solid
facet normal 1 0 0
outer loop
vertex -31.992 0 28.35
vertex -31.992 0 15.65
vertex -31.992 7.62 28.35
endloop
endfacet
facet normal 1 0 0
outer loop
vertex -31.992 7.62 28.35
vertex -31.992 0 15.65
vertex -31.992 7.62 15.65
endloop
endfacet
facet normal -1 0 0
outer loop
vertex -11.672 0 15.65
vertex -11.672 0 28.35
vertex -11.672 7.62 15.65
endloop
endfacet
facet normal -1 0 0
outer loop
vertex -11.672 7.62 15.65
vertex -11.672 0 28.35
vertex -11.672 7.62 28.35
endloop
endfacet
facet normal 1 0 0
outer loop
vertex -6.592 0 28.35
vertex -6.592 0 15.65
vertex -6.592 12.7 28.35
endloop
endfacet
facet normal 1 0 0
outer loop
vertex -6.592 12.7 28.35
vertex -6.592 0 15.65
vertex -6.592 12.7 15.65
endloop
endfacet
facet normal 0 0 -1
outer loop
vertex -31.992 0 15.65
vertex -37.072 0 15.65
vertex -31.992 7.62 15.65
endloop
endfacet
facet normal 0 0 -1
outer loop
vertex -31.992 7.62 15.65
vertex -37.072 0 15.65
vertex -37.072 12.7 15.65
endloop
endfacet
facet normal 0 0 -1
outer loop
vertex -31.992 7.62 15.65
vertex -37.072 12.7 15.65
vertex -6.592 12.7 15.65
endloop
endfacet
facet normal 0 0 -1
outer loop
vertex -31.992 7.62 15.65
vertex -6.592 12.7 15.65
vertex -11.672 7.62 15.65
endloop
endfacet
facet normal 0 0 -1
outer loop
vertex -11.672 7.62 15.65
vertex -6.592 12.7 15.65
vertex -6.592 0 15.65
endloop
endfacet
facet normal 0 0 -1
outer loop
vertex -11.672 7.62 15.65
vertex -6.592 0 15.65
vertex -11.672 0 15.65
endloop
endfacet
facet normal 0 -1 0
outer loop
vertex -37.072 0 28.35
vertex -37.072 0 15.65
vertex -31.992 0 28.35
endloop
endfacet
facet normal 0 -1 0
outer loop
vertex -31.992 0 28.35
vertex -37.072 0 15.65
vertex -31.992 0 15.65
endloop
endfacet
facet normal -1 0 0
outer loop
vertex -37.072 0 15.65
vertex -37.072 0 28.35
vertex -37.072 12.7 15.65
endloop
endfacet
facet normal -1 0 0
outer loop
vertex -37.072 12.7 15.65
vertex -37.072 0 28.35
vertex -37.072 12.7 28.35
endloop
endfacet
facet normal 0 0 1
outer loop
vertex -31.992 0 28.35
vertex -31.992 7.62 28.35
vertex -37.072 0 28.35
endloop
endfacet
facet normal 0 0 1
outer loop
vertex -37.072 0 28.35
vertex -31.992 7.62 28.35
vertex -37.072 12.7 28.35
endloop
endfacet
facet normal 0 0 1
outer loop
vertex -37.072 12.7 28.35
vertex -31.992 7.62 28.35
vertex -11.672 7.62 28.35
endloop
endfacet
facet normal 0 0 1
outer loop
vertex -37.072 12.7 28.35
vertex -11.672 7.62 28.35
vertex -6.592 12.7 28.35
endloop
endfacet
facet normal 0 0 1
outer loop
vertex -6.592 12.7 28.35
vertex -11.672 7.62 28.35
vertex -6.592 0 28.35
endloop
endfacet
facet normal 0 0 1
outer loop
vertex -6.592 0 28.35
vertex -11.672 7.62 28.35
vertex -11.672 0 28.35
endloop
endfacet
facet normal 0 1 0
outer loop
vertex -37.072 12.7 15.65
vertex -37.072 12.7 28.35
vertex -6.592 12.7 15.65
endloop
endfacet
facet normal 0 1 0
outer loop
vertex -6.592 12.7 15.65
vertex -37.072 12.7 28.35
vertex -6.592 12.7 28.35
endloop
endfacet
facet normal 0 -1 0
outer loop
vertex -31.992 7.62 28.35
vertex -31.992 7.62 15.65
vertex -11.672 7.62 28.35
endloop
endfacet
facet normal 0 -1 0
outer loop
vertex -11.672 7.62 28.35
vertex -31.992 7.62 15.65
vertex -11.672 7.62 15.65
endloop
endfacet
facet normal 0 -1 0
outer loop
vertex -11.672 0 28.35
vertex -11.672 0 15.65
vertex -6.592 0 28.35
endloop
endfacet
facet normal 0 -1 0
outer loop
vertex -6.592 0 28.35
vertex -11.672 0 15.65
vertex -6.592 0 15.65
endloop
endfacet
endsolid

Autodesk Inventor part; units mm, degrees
ref_plane "YZ Plane" through (0, 0, 0) normal (1, 0, 0) x (0, 1, 0)
ref_plane "XZ Plane" through (0, 0, 0) normal (0, 1, 0) x (-1, 0, 0)
ref_plane "XY Plane" through (0, 0, 0) normal (0, 0, 1) x (1, 0, 0)
sketch "Sketch1" plane through (0, 0, 0) normal (0, 1, 0) x (-1, 0, 0)
  line L0 (-26.4284, 51.2097) -> (59.9316, 51.2097)
  line L1 (31.9916, 28.3497) -> (37.0716, 28.3497)
  line L2 (37.0716, 28.3497) -> (37.0716, 15.6497)
  line L3 (37.0716, 15.6497) -> (31.9916, 15.6497)
  line L4 (31.9916, 15.6497) -> (31.9916, 28.3497)
  line L5 (31.9916, 28.3497) -> (37.0716, 15.6497) construction
  line L6 (37.0716, 28.3497) -> (31.9916, 15.6497) construction
  line L7 (34.5316, 51.2097) -> (34.5316, -7.2103) construction
  line L8 (59.9316, -7.2103) -> (-26.4284, -7.2103) construction
  line L9 (9.1316, 51.2097) -> (9.1316, -7.2103) construction
  line L10 (6.5916, 28.3497) -> (11.6716, 28.3497)
  line L11 (11.6716, 28.3497) -> (11.6716, 15.6497)
  line L12 (11.6716, 15.6497) -> (6.5916, 15.6497)
  line L13 (6.5916, 15.6497) -> (6.5916, 28.3497)
  line L14 (6.5916, 28.3497) -> (11.6716, 15.6497) construction
  line L15 (11.6716, 28.3497) -> (6.5916, 15.6497) construction
  point P0 (0, 0)
  point P1 (34.5316, 21.9997)
  point P2 (34.5316, 21.9997)
  point P3 (9.1316, 21.9997)
  point P4 (9.1316, 21.9997)
  dimension "d4" = 12.7
  dimension "d5" = 5.08
  dimension "d7" = 25.4
extrude "Extrusion1" add sketch "Sketch1" along normal blind 7.62
sketch "Sketch3" plane through (0, 7.62, 0) normal (0, 1, 0) x (1, 0, 0)
  line L0 (-37.0716, -15.6497) -> (-37.0716, -28.3497) projected
  line L1 (-6.5916, -15.6497) -> (-6.5916, -28.3497) projected
  line L2 (-37.0716, -15.6497) -> (-6.5916, -15.6497)
  line L3 (-6.5916, -15.6497) -> (-6.5916, -28.3497)
  line L4 (-6.5916, -28.3497) -> (-37.0716, -28.3497)
  line L5 (-37.0716, -28.3497) -> (-37.0716, -15.6497)
  point P0 (0, 0)
extrude "Extrusion2" add sketch "Sketch3" along normal blind 5.08
properties part number "Cpiece"
